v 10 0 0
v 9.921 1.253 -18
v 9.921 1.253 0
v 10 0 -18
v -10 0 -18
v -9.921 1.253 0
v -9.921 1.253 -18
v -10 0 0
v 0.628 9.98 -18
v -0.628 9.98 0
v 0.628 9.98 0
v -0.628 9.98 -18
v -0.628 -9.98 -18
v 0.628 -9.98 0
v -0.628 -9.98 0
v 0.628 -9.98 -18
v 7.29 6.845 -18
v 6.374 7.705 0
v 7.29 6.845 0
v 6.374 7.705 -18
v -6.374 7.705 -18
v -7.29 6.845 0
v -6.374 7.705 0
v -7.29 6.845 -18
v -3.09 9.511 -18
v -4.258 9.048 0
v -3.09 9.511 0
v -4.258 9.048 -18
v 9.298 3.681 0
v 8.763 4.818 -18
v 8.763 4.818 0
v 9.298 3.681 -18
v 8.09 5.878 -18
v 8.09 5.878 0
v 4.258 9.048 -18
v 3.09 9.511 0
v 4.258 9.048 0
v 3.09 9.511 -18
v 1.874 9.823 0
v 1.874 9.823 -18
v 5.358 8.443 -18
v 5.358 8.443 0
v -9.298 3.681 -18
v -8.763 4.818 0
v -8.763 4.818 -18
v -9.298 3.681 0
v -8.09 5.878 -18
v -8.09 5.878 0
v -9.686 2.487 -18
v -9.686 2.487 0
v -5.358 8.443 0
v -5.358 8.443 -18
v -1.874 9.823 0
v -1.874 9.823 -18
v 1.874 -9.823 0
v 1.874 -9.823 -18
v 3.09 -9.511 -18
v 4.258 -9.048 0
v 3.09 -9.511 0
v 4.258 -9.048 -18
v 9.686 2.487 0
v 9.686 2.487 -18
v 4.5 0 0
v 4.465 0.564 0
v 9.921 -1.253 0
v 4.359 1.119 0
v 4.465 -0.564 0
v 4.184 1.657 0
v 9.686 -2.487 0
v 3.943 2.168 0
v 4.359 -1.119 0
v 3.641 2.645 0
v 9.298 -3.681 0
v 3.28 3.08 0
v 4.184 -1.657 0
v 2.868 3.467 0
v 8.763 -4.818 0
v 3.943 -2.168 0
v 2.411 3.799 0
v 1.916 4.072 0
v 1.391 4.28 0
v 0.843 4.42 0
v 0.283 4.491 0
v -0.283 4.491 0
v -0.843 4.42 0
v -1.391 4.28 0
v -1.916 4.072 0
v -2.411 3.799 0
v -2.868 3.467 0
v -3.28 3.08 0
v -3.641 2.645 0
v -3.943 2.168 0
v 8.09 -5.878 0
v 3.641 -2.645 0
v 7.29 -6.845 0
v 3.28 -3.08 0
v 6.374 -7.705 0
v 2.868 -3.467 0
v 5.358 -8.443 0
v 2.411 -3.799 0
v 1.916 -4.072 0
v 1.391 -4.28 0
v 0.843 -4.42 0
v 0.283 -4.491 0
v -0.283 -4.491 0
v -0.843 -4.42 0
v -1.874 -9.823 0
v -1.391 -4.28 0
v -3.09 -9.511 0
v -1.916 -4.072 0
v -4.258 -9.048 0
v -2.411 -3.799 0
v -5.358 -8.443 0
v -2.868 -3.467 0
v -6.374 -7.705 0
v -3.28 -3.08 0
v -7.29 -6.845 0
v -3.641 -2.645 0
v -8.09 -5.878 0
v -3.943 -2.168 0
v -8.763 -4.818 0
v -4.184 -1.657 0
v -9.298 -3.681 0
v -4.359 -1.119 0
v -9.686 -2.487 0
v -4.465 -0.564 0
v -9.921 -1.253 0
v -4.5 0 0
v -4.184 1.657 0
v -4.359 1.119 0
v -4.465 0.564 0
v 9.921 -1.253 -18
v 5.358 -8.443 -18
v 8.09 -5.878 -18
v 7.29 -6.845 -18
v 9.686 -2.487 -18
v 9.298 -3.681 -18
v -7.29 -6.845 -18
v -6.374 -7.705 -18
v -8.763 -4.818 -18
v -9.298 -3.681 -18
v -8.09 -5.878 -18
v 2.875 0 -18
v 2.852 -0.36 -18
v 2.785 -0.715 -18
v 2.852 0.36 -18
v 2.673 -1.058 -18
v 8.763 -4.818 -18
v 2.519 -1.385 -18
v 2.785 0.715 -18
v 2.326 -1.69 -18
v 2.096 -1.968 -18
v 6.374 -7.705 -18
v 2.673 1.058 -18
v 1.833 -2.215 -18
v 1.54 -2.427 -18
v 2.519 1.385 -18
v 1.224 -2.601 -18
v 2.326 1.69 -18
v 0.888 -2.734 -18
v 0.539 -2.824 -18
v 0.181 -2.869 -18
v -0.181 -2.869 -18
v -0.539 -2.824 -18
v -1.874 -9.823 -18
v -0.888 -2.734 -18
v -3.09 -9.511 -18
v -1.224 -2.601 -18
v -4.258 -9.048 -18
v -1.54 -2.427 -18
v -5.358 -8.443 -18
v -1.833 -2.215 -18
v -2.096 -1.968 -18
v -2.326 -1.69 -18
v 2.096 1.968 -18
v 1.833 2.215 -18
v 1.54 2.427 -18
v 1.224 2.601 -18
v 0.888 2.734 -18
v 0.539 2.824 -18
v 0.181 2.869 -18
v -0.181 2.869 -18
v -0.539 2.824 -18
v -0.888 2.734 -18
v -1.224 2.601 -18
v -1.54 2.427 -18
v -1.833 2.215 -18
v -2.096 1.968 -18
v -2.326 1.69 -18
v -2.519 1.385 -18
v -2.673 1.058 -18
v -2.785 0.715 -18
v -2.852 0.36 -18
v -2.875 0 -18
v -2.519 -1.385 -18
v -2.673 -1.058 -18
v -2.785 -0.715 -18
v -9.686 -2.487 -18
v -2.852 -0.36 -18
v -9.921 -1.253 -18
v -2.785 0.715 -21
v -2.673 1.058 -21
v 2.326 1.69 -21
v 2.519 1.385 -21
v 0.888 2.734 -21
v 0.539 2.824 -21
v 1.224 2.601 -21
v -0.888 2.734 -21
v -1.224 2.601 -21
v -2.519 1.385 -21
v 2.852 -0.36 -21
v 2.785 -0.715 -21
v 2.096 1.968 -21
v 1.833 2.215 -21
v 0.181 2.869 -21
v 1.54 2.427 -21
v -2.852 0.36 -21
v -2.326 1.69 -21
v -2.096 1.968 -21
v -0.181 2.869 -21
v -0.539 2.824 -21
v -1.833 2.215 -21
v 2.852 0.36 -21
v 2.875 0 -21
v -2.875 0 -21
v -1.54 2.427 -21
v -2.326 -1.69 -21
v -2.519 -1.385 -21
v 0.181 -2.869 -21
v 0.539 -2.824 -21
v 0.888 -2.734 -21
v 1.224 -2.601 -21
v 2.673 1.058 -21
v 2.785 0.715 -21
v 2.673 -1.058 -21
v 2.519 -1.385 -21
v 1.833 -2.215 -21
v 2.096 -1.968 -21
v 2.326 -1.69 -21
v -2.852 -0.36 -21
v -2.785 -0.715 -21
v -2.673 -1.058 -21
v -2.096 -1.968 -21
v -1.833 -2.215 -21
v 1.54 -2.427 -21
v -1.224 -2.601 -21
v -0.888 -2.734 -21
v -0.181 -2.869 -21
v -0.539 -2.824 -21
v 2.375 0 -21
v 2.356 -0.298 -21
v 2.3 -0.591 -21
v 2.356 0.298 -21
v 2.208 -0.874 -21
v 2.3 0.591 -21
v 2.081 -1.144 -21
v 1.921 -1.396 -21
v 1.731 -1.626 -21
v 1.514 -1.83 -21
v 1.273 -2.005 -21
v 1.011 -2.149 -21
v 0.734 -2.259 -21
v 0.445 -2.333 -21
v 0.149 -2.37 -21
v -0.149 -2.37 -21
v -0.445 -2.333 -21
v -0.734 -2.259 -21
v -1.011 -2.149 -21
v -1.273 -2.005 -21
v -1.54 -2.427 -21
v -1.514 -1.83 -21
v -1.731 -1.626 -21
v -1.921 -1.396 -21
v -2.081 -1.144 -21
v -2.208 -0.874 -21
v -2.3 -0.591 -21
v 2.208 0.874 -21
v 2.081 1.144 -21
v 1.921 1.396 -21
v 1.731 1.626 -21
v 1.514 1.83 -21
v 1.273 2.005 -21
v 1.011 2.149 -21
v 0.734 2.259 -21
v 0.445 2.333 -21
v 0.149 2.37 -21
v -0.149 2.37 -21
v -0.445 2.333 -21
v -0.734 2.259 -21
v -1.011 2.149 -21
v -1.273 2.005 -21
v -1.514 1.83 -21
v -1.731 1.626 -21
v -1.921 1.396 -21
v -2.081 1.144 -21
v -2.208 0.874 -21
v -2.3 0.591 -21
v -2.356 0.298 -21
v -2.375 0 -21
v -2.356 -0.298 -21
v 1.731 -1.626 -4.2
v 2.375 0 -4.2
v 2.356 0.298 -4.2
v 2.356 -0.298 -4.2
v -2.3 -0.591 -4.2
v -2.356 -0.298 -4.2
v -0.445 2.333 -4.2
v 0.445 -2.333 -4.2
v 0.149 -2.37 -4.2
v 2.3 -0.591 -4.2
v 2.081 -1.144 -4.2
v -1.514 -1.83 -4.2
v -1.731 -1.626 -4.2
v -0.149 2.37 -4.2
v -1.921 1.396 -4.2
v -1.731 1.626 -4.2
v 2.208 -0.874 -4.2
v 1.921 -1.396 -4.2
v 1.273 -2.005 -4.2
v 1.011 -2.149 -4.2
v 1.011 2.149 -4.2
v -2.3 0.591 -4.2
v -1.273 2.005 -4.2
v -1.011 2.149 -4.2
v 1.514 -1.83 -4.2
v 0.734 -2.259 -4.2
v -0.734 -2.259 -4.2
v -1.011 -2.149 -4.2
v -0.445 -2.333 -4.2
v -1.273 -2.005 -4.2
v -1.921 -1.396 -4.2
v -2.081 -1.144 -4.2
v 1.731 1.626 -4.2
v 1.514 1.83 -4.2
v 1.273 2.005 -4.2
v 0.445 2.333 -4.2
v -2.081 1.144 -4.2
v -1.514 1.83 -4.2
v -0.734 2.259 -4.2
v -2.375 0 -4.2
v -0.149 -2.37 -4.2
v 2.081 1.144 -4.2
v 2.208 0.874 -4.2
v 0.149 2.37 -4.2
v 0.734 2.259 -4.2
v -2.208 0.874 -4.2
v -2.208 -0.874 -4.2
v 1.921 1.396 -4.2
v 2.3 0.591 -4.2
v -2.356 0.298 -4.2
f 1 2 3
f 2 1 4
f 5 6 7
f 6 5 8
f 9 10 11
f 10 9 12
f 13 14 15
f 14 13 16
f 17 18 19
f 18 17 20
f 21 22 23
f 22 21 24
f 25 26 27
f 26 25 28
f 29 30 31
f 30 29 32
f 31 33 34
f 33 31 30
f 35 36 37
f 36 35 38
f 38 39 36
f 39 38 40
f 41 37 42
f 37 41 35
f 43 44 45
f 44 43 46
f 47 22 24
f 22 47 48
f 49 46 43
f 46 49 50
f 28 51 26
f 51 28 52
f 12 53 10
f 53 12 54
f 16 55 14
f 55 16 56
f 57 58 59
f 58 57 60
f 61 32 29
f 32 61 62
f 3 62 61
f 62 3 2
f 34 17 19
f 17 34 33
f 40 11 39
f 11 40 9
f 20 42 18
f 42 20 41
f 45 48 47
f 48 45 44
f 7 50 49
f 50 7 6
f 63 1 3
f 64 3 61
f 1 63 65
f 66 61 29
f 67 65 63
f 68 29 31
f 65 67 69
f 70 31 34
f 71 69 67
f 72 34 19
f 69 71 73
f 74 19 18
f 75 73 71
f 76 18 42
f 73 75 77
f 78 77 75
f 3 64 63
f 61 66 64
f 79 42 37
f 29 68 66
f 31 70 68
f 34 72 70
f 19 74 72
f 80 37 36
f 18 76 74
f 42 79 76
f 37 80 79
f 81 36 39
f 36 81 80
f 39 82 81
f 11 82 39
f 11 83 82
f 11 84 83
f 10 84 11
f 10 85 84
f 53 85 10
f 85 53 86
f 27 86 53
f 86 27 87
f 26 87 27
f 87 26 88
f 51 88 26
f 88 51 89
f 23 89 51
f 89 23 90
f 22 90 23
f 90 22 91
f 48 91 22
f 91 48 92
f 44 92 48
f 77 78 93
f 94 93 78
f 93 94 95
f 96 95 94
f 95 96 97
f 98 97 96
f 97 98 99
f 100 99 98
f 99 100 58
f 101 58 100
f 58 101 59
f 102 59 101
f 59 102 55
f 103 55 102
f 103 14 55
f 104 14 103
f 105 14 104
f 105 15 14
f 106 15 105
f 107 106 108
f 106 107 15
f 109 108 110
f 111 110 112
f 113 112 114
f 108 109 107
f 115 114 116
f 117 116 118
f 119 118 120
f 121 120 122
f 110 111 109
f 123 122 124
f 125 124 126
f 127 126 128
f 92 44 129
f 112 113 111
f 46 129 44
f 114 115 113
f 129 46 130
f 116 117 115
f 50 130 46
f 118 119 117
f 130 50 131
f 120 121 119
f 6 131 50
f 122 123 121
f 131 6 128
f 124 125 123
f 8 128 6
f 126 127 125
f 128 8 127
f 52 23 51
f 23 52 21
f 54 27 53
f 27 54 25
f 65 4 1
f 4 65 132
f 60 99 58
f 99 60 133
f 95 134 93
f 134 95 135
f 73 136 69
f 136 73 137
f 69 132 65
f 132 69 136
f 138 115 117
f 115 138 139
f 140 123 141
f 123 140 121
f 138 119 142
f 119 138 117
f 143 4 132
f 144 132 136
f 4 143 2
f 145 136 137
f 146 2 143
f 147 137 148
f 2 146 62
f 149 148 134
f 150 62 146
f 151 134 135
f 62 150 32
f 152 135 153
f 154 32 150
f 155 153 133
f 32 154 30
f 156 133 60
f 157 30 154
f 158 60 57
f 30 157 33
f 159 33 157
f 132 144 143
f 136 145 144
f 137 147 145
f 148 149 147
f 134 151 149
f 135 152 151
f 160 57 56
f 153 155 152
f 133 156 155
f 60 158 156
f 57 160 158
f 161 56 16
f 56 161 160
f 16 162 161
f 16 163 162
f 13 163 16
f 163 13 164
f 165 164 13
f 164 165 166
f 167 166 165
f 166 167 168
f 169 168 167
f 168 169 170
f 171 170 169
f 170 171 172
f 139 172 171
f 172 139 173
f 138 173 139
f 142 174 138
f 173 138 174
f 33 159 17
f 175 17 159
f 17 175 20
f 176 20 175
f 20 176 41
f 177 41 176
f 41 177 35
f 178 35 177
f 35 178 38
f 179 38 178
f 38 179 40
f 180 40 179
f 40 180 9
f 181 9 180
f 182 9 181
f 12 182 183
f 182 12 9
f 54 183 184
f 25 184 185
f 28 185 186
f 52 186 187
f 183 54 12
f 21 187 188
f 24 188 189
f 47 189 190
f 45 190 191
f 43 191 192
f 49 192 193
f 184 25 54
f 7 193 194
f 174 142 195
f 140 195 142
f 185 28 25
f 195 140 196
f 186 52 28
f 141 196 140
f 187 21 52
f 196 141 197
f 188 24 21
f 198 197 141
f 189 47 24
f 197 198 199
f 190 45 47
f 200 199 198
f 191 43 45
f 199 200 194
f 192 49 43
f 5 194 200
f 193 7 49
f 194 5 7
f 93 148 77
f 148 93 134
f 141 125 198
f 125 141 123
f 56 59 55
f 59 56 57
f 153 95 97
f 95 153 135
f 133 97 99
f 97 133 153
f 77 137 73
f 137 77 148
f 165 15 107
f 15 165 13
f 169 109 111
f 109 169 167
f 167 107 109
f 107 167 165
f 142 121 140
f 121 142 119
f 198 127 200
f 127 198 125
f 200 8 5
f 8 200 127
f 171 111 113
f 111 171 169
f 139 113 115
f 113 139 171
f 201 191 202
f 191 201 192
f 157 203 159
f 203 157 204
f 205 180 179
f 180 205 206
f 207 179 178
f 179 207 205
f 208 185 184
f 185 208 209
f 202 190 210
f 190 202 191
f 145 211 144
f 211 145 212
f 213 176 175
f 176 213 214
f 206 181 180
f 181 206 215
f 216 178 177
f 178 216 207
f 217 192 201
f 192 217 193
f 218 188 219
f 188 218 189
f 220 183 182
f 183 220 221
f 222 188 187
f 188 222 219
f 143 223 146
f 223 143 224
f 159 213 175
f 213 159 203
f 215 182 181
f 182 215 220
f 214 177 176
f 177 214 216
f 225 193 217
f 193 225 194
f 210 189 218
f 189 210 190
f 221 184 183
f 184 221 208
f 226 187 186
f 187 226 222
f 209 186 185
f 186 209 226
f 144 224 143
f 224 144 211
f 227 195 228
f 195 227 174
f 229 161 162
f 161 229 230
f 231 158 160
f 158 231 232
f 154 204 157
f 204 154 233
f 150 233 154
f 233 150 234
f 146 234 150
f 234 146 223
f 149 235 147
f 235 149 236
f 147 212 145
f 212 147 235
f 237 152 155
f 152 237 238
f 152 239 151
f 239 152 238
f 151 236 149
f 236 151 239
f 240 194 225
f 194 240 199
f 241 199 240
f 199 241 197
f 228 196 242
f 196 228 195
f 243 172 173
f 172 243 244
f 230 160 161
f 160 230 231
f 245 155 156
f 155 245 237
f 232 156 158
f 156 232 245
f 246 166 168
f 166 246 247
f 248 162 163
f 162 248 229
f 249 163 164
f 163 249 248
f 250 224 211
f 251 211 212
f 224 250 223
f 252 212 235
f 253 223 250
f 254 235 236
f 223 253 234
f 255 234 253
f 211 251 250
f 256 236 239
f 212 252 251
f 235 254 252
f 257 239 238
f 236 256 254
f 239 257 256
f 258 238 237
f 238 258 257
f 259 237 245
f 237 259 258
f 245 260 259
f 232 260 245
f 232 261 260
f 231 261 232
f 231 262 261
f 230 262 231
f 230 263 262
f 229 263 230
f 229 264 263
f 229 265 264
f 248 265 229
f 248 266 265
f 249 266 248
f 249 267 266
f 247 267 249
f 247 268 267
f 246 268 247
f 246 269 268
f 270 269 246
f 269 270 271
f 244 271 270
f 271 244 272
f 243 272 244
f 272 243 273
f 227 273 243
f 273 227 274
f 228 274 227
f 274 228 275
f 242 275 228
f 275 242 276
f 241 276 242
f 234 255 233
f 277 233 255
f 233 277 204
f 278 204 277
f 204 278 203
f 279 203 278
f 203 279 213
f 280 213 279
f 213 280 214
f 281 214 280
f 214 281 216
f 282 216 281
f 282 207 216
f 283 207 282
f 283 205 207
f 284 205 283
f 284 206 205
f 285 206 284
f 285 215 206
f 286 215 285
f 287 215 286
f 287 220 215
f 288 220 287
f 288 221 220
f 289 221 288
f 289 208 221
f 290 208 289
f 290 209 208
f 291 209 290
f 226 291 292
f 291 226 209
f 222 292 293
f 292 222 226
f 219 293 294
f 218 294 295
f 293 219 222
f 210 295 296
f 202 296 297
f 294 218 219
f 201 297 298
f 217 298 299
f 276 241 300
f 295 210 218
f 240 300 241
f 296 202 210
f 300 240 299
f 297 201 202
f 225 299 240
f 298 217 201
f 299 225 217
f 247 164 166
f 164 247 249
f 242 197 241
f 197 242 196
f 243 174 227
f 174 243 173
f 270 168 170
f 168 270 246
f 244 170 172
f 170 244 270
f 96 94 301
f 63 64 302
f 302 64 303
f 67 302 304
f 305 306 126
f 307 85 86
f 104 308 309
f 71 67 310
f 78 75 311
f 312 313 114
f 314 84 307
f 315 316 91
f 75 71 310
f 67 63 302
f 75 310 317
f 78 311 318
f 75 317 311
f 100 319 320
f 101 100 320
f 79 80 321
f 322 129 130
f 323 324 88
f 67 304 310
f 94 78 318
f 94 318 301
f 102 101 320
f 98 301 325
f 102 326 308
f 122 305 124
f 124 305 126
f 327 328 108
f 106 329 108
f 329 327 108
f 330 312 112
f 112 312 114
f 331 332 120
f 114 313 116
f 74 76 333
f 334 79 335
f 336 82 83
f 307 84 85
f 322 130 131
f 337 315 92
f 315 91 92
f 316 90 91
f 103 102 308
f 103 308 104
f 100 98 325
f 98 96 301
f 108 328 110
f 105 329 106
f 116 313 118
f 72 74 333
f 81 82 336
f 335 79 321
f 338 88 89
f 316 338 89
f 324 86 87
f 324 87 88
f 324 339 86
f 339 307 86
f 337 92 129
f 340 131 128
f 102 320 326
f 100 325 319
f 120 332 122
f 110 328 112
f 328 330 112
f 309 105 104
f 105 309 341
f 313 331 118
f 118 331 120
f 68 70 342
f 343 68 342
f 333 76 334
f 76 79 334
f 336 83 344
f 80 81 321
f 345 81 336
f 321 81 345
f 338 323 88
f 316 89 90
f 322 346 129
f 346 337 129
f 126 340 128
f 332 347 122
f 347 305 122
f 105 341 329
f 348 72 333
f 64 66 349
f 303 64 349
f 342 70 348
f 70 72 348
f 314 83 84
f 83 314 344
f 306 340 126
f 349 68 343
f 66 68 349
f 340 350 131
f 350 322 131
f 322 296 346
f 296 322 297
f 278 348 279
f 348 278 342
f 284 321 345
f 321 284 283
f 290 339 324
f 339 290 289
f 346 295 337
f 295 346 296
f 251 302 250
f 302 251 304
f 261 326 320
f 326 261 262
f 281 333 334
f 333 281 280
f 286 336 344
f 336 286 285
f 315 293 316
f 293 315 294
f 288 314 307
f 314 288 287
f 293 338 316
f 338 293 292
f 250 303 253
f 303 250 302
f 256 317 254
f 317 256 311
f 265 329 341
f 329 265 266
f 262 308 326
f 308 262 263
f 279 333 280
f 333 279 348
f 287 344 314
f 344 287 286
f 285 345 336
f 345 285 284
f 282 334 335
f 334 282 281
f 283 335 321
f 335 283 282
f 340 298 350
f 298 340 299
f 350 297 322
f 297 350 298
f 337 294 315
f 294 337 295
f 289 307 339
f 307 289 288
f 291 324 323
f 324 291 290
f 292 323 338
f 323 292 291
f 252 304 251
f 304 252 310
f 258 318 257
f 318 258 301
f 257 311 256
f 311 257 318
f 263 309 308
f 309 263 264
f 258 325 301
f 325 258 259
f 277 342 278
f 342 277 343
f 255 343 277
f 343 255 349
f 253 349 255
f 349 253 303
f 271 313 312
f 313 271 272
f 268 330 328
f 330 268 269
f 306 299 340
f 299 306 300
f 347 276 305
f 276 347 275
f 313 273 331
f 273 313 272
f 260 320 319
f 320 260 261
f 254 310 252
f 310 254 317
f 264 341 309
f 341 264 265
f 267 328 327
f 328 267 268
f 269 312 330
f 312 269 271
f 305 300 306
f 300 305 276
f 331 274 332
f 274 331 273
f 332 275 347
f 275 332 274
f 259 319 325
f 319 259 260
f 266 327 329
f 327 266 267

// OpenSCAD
$fn = 50;


difference() {
	union() {
		translate(v = [0, 0, -18.0000000000]) {
			cylinder(h = 18, r = 10.0000000000);
		}
		#translate(v = [0, 0, -21.0000000000]) {
			cylinder(h = 21, r = 2.8750000000);
		}
	}
	union() {
		translate(v = [0, 0, 0]) {
			rotate(a = [0, 0, 0]) {
				difference() {
					union() {
						translate(v = [0, 0, -21.0000000000]) {
							cylinder(h = 21, r = 2.2500000000);
						}
						translate(v = [0, 0, -4.2000000000]) {
							cylinder(h = 4.2000000000, r1 = 2.3750000000, r2 = 4.5000000000);
						}
						translate(v = [0, 0, -21.0000000000]) {
							cylinder(h = 21, r = 2.3750000000);
						}
						translate(v = [0, 0, -21.0000000000]) {
							cylinder(h = 21, r = 2.2500000000);
						}
					}
					union();
				}
			}
		}
	}
}
